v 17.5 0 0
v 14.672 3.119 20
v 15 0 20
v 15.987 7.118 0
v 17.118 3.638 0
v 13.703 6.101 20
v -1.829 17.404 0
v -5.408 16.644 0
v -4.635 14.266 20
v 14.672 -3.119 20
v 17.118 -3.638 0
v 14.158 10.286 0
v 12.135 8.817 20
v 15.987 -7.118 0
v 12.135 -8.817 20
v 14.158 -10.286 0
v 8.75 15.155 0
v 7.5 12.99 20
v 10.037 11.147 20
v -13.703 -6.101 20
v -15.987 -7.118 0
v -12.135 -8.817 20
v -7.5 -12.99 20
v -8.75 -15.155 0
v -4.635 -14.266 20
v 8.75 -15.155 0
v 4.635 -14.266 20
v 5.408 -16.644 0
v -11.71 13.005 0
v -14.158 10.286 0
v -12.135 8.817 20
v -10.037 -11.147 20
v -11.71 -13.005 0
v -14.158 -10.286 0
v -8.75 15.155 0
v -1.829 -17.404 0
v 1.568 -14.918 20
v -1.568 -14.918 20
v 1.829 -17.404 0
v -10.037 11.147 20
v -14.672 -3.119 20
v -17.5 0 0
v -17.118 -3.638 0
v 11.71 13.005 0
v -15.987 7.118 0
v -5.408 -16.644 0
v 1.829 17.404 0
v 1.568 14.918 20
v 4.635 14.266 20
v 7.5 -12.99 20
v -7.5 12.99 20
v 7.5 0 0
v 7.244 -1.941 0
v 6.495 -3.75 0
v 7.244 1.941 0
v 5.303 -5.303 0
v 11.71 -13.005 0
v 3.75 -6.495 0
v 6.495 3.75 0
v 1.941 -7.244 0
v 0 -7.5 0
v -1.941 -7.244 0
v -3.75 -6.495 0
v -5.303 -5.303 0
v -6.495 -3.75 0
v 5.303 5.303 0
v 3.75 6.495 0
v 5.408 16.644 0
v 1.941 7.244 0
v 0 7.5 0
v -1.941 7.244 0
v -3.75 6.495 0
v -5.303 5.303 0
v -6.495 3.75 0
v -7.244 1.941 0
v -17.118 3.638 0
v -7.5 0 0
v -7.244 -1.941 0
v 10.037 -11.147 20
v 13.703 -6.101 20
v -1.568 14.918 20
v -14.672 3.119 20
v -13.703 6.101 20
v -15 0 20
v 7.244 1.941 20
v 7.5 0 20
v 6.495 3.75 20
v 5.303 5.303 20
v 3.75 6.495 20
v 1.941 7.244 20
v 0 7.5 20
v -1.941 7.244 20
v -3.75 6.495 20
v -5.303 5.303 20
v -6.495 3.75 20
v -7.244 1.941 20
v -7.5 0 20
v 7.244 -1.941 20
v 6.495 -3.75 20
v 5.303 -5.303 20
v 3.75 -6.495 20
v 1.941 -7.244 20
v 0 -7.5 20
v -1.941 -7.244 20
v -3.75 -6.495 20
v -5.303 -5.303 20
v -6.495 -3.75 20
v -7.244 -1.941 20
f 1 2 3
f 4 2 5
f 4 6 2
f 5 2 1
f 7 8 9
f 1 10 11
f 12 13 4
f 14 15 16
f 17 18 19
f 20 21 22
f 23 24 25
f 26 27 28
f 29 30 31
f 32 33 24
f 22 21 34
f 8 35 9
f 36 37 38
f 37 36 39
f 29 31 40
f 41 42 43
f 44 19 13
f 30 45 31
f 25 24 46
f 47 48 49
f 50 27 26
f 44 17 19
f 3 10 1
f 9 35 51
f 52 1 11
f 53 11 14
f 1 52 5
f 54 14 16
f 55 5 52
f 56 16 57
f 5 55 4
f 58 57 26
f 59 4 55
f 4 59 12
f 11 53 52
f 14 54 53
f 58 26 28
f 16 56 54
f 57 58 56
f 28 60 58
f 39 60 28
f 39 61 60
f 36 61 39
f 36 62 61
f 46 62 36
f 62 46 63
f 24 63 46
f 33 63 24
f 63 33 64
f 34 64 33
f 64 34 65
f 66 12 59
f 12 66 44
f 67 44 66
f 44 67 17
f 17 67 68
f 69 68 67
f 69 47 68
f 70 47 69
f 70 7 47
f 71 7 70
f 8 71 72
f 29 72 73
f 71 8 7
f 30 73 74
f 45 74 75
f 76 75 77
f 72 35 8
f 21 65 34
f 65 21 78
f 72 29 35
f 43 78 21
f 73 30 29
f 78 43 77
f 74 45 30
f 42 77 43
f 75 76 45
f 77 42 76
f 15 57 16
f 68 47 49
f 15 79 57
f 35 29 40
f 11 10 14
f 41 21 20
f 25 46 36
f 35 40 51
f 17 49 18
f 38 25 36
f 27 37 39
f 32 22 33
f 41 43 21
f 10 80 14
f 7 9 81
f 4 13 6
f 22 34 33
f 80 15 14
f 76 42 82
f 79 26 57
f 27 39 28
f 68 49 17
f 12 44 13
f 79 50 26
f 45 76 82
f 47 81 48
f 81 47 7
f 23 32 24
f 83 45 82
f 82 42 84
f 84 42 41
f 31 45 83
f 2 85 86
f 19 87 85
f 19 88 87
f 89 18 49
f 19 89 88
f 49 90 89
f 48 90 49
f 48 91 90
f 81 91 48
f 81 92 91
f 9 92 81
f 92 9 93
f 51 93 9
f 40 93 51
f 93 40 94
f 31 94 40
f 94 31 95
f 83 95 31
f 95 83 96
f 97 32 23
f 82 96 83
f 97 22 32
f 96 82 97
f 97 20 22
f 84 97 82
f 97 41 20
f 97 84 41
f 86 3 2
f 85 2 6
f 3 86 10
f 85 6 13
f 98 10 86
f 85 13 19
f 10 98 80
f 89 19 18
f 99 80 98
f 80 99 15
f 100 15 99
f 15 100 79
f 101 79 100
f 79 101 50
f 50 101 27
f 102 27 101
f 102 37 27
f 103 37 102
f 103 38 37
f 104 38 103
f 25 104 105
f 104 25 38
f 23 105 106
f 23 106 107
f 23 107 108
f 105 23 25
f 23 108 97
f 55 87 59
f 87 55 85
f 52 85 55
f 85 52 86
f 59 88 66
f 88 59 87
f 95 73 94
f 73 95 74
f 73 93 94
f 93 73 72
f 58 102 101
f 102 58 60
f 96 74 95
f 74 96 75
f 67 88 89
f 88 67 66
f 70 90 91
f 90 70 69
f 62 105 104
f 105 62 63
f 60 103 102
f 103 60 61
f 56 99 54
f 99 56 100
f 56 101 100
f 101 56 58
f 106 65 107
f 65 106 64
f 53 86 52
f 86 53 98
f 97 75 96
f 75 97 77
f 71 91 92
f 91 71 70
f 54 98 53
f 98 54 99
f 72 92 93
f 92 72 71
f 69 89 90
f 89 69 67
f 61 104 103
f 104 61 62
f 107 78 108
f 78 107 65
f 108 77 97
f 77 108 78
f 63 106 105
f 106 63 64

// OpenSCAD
// Parameters
outer_diameter_top = 30;  // Top diameter of the tapered cylinder
outer_diameter_bottom = 35; // Bottom diameter of the tapered cylinder
height = 20;  // Height of the cylinder
inner_diameter = 15;  // Diameter of the hollow section

// Module to create the angled hollow cylinder
module angled_hollow_cylinder() {
    difference() {
        // Create a tapered cylinder using linear_extrude
        linear_extrude(height=height, scale=outer_diameter_top/outer_diameter_bottom)
        circle(d=outer_diameter_bottom);
        
        // Create the inner hollow section
        translate([0, 0, -1]) // Slightly lower to ensure proper subtraction
        cylinder(h=height+2, d=inner_diameter, center=false);
    }
}

// Call the module to render the object
angled_hollow_cylinder();
